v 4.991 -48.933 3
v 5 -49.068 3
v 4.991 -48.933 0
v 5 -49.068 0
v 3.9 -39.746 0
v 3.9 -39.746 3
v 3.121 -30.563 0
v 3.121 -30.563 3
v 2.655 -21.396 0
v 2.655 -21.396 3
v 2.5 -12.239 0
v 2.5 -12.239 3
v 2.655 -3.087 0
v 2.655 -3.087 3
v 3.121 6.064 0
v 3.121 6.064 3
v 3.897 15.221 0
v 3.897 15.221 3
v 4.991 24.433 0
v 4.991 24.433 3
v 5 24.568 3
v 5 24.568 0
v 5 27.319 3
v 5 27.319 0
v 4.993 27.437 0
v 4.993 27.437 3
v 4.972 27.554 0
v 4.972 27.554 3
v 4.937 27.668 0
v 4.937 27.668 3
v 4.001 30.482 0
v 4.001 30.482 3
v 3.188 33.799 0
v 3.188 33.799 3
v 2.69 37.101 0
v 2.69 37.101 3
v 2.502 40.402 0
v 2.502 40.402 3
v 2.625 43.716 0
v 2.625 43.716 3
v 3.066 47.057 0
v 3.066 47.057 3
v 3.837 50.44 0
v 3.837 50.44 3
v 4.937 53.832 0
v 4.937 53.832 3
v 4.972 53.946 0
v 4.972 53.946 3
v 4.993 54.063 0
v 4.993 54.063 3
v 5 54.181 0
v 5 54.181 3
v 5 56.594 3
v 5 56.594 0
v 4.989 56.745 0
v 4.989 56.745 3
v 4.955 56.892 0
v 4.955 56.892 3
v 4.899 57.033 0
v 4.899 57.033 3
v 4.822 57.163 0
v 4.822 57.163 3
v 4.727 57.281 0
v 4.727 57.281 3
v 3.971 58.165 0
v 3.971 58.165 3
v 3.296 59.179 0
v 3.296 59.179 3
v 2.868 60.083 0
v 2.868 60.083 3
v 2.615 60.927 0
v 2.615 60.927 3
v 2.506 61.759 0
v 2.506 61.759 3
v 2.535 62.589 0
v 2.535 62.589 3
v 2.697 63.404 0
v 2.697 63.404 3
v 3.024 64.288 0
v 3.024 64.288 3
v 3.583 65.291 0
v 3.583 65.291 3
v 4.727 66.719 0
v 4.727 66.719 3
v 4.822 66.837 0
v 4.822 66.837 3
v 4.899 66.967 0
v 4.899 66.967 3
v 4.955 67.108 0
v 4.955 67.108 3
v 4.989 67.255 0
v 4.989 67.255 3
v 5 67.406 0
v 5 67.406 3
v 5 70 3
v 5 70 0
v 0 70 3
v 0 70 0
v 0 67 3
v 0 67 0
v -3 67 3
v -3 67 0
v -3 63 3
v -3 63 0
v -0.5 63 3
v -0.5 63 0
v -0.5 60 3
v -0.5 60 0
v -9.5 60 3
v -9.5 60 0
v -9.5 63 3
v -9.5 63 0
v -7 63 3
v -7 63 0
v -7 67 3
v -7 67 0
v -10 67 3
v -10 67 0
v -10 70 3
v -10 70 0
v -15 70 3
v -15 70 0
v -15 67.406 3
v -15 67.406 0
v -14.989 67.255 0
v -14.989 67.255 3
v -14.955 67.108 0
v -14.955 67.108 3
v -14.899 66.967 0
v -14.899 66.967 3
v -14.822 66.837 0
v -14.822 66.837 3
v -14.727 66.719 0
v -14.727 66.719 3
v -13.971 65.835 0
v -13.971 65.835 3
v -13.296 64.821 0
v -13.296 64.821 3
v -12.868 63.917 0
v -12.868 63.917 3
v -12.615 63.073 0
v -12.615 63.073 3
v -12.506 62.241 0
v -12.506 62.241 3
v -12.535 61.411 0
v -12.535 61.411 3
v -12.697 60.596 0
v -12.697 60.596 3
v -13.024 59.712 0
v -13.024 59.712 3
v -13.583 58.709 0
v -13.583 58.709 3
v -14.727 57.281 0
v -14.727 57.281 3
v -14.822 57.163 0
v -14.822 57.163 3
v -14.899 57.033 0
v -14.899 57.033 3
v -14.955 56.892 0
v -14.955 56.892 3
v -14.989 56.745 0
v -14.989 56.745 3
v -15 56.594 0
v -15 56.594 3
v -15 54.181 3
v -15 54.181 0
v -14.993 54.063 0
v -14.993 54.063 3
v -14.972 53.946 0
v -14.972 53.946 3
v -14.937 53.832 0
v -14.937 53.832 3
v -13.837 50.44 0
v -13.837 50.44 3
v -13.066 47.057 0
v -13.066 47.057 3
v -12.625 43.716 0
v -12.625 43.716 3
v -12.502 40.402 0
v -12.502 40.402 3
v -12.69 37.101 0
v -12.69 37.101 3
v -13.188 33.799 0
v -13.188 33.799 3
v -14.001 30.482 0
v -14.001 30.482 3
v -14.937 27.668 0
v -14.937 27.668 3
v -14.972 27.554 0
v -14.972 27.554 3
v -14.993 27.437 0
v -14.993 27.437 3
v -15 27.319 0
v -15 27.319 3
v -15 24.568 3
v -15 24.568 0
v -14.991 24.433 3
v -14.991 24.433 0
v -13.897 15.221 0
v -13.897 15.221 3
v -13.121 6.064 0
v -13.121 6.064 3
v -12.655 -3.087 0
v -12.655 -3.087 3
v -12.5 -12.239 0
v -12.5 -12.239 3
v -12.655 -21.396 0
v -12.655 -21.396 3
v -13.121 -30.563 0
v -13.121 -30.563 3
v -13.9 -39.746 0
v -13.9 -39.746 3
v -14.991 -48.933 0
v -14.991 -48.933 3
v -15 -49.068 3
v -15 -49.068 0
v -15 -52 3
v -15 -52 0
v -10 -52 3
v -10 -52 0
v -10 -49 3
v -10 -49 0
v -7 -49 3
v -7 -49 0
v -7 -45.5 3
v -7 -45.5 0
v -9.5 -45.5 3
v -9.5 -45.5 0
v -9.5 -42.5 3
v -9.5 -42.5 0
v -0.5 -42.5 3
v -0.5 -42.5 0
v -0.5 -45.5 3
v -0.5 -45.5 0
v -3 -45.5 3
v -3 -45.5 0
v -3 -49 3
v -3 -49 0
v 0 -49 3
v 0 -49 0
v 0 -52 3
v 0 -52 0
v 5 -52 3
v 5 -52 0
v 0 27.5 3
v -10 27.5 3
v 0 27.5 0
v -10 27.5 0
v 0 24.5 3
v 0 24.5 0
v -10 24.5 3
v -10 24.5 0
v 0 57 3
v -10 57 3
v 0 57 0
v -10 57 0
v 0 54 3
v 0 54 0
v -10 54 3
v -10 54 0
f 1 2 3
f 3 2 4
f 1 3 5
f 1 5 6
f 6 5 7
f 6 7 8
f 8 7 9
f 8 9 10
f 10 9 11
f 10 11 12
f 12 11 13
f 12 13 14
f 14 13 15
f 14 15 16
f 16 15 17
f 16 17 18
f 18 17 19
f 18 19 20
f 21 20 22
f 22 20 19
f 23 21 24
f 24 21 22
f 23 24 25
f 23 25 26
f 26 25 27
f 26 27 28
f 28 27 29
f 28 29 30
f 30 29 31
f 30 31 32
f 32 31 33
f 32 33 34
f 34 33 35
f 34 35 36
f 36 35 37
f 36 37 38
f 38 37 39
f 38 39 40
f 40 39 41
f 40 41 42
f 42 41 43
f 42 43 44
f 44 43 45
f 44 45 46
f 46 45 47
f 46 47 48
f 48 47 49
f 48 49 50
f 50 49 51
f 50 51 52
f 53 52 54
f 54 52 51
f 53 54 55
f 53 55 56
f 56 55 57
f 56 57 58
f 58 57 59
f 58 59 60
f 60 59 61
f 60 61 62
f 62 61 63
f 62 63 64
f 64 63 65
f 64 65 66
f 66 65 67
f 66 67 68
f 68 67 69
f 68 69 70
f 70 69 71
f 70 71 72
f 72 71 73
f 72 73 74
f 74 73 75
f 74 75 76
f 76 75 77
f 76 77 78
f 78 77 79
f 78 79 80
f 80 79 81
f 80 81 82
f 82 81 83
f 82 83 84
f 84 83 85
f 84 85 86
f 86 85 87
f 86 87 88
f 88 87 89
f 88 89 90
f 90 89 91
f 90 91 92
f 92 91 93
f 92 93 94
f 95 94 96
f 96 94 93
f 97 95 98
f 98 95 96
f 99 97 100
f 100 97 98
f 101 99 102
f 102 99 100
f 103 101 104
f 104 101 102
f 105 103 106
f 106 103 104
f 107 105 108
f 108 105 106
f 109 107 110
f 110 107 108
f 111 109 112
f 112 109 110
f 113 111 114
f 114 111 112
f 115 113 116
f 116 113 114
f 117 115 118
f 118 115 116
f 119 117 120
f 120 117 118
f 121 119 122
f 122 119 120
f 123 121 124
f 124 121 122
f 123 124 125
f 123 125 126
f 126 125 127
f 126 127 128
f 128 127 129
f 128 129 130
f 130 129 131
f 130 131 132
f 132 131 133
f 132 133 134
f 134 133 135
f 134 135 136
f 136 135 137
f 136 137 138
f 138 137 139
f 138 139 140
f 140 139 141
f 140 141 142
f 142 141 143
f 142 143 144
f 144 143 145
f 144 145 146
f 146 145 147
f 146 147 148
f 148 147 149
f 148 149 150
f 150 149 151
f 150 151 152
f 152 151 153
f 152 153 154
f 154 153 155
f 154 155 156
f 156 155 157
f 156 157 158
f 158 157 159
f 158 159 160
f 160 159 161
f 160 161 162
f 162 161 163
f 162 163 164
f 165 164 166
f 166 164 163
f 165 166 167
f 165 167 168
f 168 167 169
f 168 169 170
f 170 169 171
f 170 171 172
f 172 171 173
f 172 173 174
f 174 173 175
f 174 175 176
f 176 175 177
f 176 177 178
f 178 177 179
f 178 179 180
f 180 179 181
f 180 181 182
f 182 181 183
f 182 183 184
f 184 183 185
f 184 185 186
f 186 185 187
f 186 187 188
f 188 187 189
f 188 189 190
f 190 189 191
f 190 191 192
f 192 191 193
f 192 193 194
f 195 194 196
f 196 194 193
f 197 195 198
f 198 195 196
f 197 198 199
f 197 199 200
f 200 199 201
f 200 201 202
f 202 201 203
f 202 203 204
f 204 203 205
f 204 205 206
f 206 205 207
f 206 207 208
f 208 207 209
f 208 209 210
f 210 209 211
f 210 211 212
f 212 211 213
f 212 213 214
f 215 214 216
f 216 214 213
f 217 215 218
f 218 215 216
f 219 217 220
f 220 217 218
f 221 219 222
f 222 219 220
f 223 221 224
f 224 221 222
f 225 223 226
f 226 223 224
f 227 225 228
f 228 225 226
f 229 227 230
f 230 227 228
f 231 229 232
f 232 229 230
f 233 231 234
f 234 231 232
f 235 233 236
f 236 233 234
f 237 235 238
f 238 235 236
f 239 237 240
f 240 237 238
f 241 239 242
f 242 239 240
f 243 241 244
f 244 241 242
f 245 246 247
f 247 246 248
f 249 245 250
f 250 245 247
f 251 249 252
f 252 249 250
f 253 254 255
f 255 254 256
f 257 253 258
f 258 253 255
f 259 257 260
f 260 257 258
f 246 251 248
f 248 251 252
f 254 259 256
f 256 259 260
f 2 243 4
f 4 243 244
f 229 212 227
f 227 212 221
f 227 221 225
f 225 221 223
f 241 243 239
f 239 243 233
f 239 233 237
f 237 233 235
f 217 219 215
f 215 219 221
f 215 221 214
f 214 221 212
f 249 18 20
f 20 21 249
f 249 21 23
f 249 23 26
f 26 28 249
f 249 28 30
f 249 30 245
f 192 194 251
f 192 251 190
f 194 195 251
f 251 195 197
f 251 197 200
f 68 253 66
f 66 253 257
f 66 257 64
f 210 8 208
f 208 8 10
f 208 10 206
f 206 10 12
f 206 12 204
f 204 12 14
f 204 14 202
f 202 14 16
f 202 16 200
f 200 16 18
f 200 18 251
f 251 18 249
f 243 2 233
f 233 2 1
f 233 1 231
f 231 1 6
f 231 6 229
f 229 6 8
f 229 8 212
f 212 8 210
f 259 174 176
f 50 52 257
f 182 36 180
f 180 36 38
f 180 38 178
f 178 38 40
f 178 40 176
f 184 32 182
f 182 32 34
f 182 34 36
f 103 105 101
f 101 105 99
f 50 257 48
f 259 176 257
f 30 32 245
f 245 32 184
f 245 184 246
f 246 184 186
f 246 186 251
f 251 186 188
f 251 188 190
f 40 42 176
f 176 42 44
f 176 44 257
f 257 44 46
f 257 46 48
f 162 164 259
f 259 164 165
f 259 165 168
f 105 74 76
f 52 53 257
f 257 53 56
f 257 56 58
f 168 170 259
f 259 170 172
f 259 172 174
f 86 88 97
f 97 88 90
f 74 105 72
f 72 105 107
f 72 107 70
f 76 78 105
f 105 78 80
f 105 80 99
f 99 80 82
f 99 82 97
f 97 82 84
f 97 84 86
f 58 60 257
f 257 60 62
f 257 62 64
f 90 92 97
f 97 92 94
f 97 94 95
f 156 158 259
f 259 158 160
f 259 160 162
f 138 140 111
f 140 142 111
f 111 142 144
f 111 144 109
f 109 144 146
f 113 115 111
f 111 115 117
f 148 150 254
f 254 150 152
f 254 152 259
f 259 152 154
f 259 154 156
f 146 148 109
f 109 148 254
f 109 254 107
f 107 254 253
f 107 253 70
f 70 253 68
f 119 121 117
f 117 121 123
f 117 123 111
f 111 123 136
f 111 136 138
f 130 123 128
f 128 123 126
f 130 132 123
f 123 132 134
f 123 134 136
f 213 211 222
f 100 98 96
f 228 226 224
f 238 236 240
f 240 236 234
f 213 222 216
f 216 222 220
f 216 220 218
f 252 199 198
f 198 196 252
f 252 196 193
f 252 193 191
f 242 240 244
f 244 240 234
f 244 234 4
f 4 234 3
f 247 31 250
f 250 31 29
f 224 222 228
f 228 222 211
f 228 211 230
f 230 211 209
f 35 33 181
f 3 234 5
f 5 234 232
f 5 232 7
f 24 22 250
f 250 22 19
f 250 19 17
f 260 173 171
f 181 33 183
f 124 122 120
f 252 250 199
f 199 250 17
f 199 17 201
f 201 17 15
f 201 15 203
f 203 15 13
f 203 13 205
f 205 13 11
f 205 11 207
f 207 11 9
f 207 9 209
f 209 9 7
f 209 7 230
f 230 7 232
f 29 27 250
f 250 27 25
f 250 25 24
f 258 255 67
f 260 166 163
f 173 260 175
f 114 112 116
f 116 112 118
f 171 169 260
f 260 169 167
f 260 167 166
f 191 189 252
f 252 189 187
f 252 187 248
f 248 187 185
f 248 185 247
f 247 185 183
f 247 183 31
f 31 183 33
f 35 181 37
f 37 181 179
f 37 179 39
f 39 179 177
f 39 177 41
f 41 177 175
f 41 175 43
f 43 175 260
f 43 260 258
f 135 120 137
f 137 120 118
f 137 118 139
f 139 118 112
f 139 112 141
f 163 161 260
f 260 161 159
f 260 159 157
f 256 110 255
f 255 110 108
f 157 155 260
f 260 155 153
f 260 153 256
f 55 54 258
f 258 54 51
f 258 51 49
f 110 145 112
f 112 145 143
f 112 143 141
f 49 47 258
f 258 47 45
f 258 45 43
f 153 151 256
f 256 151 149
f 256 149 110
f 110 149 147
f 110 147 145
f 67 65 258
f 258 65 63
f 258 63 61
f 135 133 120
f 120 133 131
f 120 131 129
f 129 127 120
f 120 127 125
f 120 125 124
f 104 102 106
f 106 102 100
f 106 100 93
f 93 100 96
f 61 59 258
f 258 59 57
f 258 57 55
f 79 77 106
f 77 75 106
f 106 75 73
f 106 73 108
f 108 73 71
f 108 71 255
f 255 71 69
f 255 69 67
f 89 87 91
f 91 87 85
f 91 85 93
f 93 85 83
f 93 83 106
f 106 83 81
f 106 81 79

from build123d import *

# Parameters (mm, degrees)
CROQUIS1_W              = 10
CROQUIS1_H              = 3
SALIENTE_EXTRUIR1_DEPTH = 3


with BuildPart() as part:
    # Croquis1 → Saliente-Extruir1 (new body)
    with BuildSketch(Plane.XY):
        with BuildLine():
            Line((-10, 70), (-10, 67))
            Line((-10, 67), (-7, 67))
            Line((-7, 67), (-7, 63))
            Line((-7, 63), (-9.5, 63))
            Line((-9.5, 63), (-9.5, 60))
            Line((-9.5, 60), (-0.5, 60))
            Line((-0.5, 60), (-0.5, 63))
            Line((-0.5, 63), (-3, 63))
            Line((-3, 63), (-3, 67))
            Line((-3, 67), (0, 67))
            Line((0, 67), (0, 70))
            Line((0, 70), (5, 70))
            Line((5, 70), (5, 67.405747627))
            ThreePointArc((5, 67.405747627), (4.929306729, 67.036438809), (4.727221995, 66.719345288))
            add(Edge.make_bspline(
                [(4.727221995, 66.719345288), (3.242407332, 65.146230192), (1.757592668, 62), (3.242407332, 58.853769808), (4.727221995, 57.280654712)],
                knots=[0.028065471, 0.028065471, 0.028065471, 0.028065471, 0.5, 0.971934529, 0.971934529, 0.971934529, 0.971934529], degree=3))
            ThreePointArc((4.727221995, 57.280654712), (4.929306729, 56.963561191), (5, 56.594252373))
            Line((5, 56.594252373), (5, 54.181314171))
            ThreePointArc((5, 54.181314171), (4.9841425, 54.003934523), (4.937072921, 53.832180471))
            add(Edge.make_bspline(
                [(4.937072921, 53.832180471), (3.31235764, 49.471453647), (1.68764236, 40.75), (3.31235764, 32.028546353), (4.937072921, 27.667819529)],
                knots=[0.006332812, 0.006332812, 0.006332812, 0.006332812, 0.5, 0.993667188, 0.993667188, 0.993667188, 0.993667188], degree=3))
            ThreePointArc((4.937072921, 27.667819529), (4.9841425, 27.496065477), (5, 27.318685829))
            Line((5, 27.318685829), (5, 24.567654138))
            ThreePointArc((5, 24.567654138), (4.997723384, 24.500214919), (4.990903903, 24.433082766))
            add(Edge.make_bspline(
                [(4.990903903, -48.933082766), (3.330301301, -36.70538851), (1.669698699, -12.25), (3.330301301, 12.20538851), (4.990903903, 24.433082766)],
                knots=[0.000910439, 0.000910439, 0.000910439, 0.000910439, 0.5, 0.999089561, 0.999089561, 0.999089561, 0.999089561], degree=3))
            ThreePointArc((4.990903903, -48.933082766), (4.997723384, -49.000214919), (5, -49.067654138))
            Line((5, -49.067654138), (5, -51.701381229))
            Line((5, -51.701381229), (5, -52))
            Line((5, -52), (0, -52))
            Line((0, -52), (0, -49))
            Line((0, -49), (-3, -49))
            Line((-3, -49), (-3, -45.5))
            Line((-3, -45.5), (-0.5, -45.5))
            Line((-0.5, -45.5), (-0.5, -42.5))
            Line((-0.5, -42.5), (-9.5, -42.5))
            Line((-9.5, -42.5), (-9.5, -45.5))
            Line((-9.5, -45.5), (-7, -45.5))
            Line((-7, -45.5), (-7, -49))
            Line((-7, -49), (-10, -49))
            Line((-10, -49), (-10, -52))
            Line((-10, -52), (-15, -52))
            Line((-15, -52), (-15, -51.701381229))
            Line((-15, -51.701381229), (-15, -49.067654138))
            ThreePointArc((-15, -49.067654138), (-14.997723384, -49.000214919), (-14.990903903, -48.933082766))
            add(Edge.make_bspline(
                [(-14.990903903, -48.933082766), (-13.330301301, -36.70538851), (-11.669698699, -12.25), (-13.330301301, 12.20538851), (-14.990903903, 24.433082766)],
                knots=[0.000910439, 0.000910439, 0.000910439, 0.000910439, 0.5, 0.999089561, 0.999089561, 0.999089561, 0.999089561], degree=3))
            ThreePointArc((-14.990903903, 24.433082766), (-14.997723384, 24.500214919), (-15, 24.567654138))
            Line((-15, 24.567654138), (-15, 27.318685829))
            ThreePointArc((-15, 27.318685829), (-14.9841425, 27.496065477), (-14.937072921, 27.667819529))
            add(Edge.make_bspline(
                [(-14.937072921, 53.832180471), (-13.31235764, 49.471453647), (-11.68764236, 40.75), (-13.31235764, 32.028546353), (-14.937072921, 27.667819529)],
                knots=[0.006332812, 0.006332812, 0.006332812, 0.006332812, 0.5, 0.993667188, 0.993667188, 0.993667188, 0.993667188], degree=3))
            ThreePointArc((-14.937072921, 53.832180471), (-14.9841425, 54.003934523), (-15, 54.181314171))
            Line((-15, 54.181314171), (-15, 56.594252373))
            ThreePointArc((-15, 56.594252373), (-14.929306729, 56.963561191), (-14.727221995, 57.280654712))
            add(Edge.make_bspline(
                [(-14.727221995, 57.280654712), (-13.242407332, 58.853769808), (-11.757592668, 62), (-13.242407332, 65.146230192), (-14.727221995, 66.719345288)],
                knots=[0.028065471, 0.028065471, 0.028065471, 0.028065471, 0.5, 0.971934529, 0.971934529, 0.971934529, 0.971934529], degree=3))
            ThreePointArc((-14.727221995, 66.719345288), (-14.929306729, 67.036438809), (-15, 67.405747627))
            Line((-15, 67.405747627), (-15, 70))
            Line((-15, 70), (-10, 70))
        make_face()
        with Locations((-5, 26)):
            Rectangle(CROQUIS1_W, CROQUIS1_H, mode=Mode.SUBTRACT)
        with Locations((-5, 55.5)):
            Rectangle(CROQUIS1_W, CROQUIS1_H, mode=Mode.SUBTRACT)
    extrude(amount=SALIENTE_EXTRUIR1_DEPTH)


solid = part.part
